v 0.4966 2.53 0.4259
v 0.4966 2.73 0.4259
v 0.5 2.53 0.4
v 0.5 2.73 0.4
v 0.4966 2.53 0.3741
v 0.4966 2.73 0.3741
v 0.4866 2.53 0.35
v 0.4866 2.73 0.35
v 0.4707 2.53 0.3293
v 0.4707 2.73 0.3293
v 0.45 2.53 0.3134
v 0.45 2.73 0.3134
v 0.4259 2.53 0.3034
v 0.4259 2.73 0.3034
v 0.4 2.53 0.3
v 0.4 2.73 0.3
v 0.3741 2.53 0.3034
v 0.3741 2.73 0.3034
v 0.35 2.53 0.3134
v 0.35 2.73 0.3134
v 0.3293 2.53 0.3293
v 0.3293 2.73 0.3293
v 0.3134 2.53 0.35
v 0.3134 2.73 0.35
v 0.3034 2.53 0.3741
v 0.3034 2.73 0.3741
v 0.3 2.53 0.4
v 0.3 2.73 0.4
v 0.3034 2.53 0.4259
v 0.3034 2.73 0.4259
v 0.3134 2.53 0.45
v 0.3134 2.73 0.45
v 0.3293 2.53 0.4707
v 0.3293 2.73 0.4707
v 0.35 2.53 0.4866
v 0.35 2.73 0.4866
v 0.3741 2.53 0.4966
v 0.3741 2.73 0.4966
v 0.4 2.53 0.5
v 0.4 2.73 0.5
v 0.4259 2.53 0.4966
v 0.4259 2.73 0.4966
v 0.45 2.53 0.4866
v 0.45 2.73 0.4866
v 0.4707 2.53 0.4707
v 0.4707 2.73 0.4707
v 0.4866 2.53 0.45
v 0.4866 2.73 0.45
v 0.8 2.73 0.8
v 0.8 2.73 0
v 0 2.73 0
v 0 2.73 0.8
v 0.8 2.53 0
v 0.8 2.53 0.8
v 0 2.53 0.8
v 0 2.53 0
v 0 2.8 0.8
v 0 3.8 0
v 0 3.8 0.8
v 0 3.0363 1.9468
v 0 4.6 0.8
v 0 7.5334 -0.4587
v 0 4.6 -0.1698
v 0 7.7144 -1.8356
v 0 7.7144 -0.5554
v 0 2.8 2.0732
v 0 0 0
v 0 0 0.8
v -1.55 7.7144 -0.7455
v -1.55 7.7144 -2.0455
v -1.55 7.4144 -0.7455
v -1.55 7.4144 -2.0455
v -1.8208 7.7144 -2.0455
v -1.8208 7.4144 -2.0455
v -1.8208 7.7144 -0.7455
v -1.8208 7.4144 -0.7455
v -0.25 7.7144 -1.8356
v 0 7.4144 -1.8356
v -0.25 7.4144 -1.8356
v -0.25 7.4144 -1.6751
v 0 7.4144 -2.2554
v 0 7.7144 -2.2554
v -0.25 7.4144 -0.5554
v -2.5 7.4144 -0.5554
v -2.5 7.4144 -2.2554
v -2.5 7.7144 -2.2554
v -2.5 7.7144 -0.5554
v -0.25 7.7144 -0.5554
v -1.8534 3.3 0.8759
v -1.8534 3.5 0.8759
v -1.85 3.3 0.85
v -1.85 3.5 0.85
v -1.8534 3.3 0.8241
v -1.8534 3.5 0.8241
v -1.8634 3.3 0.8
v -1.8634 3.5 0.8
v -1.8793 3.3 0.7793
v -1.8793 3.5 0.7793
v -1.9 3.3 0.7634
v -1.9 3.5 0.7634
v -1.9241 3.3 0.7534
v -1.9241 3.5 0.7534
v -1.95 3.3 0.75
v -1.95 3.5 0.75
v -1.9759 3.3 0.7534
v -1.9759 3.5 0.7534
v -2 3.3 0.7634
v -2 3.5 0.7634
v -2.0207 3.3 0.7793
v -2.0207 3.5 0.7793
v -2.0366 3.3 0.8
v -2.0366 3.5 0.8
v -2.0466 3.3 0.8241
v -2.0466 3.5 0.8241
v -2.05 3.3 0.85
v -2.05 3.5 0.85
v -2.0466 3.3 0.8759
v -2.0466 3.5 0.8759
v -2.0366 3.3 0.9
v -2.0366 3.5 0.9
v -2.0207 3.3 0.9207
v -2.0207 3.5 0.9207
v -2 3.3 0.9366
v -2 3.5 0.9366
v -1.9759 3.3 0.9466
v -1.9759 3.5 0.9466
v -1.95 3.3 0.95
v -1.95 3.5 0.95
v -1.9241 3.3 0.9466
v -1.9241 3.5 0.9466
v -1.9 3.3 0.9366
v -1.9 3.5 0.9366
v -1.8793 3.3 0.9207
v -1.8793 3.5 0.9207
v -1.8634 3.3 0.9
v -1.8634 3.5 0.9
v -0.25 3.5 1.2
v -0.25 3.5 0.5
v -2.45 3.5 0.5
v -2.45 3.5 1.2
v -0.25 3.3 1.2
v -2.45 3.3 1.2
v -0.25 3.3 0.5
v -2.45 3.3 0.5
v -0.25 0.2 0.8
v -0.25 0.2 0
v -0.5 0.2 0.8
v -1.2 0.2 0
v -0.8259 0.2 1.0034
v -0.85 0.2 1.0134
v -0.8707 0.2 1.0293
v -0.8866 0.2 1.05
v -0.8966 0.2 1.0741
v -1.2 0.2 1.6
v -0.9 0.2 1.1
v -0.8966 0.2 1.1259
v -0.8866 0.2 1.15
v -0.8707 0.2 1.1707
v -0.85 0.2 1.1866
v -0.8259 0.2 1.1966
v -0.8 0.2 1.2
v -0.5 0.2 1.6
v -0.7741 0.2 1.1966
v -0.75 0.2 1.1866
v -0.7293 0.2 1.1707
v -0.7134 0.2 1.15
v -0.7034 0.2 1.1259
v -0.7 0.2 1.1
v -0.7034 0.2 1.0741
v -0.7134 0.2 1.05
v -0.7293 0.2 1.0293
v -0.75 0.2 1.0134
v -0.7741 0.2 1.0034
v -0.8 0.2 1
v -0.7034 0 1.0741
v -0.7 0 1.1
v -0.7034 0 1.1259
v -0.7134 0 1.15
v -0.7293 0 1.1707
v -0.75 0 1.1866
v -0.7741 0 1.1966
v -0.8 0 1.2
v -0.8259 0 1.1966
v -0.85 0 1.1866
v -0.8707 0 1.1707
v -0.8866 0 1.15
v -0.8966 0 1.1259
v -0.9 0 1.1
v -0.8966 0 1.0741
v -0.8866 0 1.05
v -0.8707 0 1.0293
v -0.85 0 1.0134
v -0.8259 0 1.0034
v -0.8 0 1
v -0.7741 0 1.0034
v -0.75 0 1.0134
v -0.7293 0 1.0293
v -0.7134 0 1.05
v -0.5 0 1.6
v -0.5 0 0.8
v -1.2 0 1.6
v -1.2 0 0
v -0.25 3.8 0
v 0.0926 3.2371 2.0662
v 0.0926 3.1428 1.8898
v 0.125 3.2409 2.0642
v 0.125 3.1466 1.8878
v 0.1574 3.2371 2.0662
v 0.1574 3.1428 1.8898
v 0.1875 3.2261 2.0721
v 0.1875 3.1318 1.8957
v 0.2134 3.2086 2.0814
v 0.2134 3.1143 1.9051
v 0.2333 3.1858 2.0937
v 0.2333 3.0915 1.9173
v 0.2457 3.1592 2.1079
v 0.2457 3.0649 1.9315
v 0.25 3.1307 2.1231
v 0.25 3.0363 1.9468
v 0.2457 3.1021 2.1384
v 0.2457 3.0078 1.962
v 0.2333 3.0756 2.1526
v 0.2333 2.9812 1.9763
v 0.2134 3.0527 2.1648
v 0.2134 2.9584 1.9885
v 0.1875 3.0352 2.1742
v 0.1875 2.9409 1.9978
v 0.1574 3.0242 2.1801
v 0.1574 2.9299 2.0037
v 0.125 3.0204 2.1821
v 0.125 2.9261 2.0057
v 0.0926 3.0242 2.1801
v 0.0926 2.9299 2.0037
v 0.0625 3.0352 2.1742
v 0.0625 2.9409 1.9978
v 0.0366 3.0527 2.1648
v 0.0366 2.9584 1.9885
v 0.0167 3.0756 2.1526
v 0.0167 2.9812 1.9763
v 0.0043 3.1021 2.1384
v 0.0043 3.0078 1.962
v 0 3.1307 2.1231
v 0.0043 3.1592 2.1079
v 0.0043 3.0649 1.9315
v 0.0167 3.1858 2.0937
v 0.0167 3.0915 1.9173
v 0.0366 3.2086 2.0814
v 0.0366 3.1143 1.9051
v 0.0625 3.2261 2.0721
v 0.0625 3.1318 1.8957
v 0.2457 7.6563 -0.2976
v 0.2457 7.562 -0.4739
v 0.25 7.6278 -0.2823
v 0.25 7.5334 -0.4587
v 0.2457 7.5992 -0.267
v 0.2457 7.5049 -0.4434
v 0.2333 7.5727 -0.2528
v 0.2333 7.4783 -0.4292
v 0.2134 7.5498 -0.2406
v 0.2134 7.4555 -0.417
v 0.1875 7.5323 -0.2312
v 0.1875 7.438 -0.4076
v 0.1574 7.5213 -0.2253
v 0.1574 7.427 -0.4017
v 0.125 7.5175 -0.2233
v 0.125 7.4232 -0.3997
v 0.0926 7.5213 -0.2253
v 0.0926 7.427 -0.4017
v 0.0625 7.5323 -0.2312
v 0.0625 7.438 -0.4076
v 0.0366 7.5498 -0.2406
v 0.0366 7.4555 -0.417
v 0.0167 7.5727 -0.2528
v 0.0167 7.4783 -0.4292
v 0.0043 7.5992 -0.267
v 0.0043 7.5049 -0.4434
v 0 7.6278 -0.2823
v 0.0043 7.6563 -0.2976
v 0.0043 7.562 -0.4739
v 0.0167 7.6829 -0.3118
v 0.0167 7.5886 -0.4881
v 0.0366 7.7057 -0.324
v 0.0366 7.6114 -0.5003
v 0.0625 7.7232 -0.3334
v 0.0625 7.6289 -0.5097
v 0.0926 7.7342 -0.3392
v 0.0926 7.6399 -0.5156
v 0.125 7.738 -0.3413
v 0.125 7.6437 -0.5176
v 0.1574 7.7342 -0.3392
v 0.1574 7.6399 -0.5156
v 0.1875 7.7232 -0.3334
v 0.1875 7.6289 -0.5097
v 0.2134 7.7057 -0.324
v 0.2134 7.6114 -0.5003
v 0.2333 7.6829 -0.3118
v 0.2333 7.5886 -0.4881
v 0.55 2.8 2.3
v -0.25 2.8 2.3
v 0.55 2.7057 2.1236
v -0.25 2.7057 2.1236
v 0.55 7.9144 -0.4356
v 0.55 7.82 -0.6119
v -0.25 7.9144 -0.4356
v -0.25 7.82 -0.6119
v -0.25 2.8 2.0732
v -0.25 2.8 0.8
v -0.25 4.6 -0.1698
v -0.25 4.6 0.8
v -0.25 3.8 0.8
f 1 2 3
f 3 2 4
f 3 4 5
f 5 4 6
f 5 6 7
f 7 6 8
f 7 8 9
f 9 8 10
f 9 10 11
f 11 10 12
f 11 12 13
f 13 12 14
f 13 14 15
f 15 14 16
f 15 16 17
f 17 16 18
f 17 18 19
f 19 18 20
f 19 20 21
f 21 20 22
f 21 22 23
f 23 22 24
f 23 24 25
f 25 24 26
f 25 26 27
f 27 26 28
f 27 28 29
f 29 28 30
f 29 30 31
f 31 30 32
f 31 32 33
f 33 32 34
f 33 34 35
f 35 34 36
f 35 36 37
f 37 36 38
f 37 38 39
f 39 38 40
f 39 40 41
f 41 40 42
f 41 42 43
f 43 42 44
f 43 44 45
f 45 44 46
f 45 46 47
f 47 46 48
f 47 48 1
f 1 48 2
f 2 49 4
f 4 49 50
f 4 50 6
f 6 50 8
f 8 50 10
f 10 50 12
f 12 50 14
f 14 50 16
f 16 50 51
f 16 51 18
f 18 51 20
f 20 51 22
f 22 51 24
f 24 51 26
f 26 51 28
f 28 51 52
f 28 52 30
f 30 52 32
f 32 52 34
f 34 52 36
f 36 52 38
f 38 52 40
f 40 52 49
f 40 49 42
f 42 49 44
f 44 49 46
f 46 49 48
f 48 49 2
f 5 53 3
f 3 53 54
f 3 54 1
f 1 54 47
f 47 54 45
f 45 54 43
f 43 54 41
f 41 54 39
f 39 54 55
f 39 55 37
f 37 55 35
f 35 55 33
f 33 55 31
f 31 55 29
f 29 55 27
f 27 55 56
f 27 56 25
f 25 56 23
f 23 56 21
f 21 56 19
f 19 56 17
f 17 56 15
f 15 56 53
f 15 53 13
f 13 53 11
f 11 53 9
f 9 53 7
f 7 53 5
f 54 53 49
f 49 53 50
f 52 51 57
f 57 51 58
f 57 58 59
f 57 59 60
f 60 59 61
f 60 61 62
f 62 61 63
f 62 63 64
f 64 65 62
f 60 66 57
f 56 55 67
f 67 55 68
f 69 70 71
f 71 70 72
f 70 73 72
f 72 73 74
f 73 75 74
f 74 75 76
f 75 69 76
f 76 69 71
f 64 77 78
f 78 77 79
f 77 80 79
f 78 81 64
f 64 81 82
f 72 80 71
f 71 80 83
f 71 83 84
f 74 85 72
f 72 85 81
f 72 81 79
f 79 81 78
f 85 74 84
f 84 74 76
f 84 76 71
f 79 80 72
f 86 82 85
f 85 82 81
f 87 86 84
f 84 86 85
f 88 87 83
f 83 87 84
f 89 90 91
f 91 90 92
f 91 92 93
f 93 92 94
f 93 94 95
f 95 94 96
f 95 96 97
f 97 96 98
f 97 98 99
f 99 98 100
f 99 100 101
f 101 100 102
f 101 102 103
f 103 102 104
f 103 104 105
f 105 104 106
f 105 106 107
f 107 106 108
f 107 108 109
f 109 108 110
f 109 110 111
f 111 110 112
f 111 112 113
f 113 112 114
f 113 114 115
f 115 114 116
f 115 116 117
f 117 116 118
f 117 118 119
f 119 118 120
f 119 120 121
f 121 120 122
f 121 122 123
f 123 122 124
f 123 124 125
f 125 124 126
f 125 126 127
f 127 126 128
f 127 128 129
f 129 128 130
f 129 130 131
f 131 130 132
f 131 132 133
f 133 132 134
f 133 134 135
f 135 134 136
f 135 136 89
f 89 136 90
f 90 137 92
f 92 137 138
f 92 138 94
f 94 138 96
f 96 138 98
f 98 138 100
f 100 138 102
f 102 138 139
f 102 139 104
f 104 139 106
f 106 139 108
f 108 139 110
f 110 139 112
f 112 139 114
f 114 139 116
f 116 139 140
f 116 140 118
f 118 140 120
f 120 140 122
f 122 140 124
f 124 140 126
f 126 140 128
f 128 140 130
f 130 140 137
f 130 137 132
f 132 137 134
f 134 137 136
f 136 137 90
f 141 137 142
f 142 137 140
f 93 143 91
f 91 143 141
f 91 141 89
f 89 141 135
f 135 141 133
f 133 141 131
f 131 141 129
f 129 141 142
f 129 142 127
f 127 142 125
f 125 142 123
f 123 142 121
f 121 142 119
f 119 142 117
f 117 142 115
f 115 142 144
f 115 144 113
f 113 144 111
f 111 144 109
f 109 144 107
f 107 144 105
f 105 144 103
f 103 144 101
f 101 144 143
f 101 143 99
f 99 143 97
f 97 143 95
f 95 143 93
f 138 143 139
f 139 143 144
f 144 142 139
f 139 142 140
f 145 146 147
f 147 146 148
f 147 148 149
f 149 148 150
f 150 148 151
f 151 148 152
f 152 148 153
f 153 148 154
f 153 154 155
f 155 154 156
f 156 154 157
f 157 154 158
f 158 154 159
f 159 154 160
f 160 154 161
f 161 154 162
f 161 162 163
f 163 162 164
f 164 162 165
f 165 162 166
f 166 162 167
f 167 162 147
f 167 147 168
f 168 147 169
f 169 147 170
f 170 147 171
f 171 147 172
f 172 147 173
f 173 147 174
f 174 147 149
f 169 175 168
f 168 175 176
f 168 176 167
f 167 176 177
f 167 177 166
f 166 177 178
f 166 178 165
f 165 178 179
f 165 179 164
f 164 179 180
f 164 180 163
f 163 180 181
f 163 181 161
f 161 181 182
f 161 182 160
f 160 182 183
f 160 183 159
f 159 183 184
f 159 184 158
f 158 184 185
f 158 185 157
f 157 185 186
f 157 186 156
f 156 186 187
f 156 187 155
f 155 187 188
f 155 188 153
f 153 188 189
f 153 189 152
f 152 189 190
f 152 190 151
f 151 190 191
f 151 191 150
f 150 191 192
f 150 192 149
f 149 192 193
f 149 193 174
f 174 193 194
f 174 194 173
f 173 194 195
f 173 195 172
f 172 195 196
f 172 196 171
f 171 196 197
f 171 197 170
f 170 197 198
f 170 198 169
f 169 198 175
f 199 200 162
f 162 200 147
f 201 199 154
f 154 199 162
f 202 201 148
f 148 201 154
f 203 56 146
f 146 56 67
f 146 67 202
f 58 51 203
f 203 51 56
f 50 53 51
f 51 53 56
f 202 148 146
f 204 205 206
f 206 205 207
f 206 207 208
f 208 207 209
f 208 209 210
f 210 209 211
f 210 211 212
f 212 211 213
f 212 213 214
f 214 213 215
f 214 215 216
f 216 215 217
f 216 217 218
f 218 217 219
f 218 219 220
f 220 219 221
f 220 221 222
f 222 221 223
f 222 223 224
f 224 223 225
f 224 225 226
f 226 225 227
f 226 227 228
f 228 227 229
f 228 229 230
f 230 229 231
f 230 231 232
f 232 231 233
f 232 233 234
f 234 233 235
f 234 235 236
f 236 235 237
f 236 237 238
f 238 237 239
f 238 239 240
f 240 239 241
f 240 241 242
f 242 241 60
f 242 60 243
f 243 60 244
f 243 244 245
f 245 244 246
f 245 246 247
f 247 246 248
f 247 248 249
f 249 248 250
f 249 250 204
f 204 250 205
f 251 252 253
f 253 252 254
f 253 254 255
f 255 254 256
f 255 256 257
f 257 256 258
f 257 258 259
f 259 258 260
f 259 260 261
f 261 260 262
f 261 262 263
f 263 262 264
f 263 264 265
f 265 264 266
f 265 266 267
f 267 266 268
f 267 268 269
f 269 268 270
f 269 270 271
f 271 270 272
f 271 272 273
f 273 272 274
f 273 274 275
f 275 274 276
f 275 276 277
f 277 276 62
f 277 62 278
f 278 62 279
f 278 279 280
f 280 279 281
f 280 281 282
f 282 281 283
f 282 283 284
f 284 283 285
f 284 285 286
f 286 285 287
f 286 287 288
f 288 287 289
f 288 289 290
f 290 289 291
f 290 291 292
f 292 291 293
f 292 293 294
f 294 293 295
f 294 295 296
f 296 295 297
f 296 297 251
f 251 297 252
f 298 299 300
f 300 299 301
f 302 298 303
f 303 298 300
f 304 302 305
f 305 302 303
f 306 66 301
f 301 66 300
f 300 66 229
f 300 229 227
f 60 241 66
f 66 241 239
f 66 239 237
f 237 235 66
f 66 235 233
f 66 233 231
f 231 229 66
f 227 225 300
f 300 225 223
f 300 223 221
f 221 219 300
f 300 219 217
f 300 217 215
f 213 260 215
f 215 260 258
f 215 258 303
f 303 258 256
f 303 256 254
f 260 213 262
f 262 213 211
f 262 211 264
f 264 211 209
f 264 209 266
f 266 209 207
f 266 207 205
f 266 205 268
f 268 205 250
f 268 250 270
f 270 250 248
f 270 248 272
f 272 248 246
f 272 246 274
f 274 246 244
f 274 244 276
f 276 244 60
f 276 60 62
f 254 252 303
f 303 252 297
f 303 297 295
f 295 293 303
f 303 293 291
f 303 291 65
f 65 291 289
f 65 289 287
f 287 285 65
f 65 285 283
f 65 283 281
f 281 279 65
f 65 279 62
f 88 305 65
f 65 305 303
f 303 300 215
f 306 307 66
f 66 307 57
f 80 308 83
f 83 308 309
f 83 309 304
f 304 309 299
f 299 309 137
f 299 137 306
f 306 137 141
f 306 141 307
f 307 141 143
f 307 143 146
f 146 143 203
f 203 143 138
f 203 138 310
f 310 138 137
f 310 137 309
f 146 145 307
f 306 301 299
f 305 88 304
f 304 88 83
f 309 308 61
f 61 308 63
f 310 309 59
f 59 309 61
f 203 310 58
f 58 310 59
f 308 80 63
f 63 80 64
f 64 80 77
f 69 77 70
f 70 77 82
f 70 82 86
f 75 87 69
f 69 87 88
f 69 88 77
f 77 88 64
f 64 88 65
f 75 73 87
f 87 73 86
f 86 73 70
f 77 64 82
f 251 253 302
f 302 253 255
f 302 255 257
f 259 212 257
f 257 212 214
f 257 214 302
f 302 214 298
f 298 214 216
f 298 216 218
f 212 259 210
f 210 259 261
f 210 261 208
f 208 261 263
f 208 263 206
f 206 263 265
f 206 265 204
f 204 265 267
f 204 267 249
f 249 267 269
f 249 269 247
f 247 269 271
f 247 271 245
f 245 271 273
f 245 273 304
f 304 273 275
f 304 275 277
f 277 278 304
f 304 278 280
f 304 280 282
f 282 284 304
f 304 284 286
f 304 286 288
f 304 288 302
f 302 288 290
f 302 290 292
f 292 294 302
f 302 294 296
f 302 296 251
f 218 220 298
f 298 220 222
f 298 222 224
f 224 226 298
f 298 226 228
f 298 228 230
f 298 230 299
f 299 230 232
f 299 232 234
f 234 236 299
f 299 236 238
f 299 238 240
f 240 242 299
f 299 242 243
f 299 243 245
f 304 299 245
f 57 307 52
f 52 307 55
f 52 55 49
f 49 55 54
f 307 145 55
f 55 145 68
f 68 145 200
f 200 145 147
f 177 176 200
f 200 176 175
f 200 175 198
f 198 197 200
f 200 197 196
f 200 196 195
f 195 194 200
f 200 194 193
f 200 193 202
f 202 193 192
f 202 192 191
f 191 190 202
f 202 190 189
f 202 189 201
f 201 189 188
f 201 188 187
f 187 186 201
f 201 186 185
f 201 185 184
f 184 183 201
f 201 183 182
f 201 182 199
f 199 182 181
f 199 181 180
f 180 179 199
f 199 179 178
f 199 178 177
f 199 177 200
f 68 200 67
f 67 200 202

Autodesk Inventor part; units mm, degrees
ref_plane "YZ Plane" through (0, 0, 0) normal (1, 0, 0) x (0, 1, 0)
ref_plane "XZ Plane" through (0, 0, 0) normal (0, 1, 0) x (-1, 0, 0)
ref_plane "XY Plane" through (0, 0, 0) normal (0, 0, 1) x (1, 0, 0)
sketch "Boceto1" plane through (0, 0, 0) normal (1, 0, 0) x (0, 1, 0)
  line L0 (0, 0) -> (0, 0.8)
  line L1 (0, 0) -> (2.8, 0)
  line L2 (2.8, 0.8) -> (2.8, 2.3)
  line L3 (0, 0.8) -> (2.8, 0.8)
  line L4 (2.8, 0) -> (3.8, 0)
  line L5 (2.8, 0) -> (4.2826, 0)
  line L6 (7.1, 0) -> (2.8, 2.3)
  line L7 (7.9144, -0.4356) -> (7.1, 0)
  line L8 (7.9144, -0.4356) -> (7.7144, -0.4356)
  line L9 (7.7144, -0.4356) -> (7.7144, -1.8356)
  line L10 (7.7144, -1.8356) -> (6.9, -1.4)
  line L11 (6.9, -1.4) -> (4.2826, 0)
  line L12 (2.8, 2.3) -> (2.8, 0.8)
  line L13 (2.8, 0.8) -> (0, 0.8)
  line L14 (0, 0.8) -> (0, 0)
  line L15 (0, 0) -> (4.2826, 0)
  line L16 (4.2826, 0) -> (7.7144, -1.8356)
  line L17 (7.7144, -1.8356) -> (7.7144, -0.4356)
  line L18 (7.7144, -0.4356) -> (7.9144, -0.4356)
  line L19 (7.9144, -0.4356) -> (2.8, 2.3)
  line L20 (2.8, 2.3) -> (2.8, 0.8)
  dimension "d0" = 0.8
  dimension "d1" = 2.8
  dimension "d2" = 2.3
  dimension "d3" = 1
  dimension "d5" = 4.3
  dimension "d6" = 0.2
  dimension "d7" = 1.4
extrude "Extrusión1" add sketch "Boceto1" against normal blind 0.25
sketch "Boceto2" plane through (0, 0, 0) normal (1, 0, 0) x (0, 0, -1)
  line L0 (0, 0) -> (0, 4.2826) projected
  line L1 (0, 4.2826) -> (1.8356, 7.7144) projected
  line L2 (1.8356, 7.7144) -> (0.4356, 7.7144) projected
  line L3 (0.4356, 7.7144) -> (0.4356, 7.9144) projected
  line L4 (0.4356, 7.9144) -> (-2.3, 2.8) projected
  line L5 (-2.3, 2.8) -> (-0.8, 2.8) projected
  line L6 (-0.8, 2.8) -> (-0.8, 0) projected
  line L7 (-0.8, 0) -> (0, 0) projected
  line L8 (0, 0) -> (0, 2.8)
  line L9 (0, 4.2826) -> (0, 0) projected
  line L10 (0, 3.8) -> (-0.8, 3.8)
  line L11 (-0.8, 3.8) -> (-0.8, 4.6)
  line L12 (-0.8, 4.6) -> (0.1698, 4.6)
  line L13 (0, 3.8) -> (0, 4.2826)
  line L14 (0, 4.2826) -> (0.1698, 4.6)
  line L15 (0, 4.2826) -> (1.8356, 7.7144) projected
  dimension "d10" = 3.8
  dimension "d11" = 0.8
  dimension "d12" = 0.8
extrude "Extrusión2" cut sketch "Boceto2" against normal blind 0.3 contours L10 L11 L12 L1 L0
sketch "Boceto3" plane through (-0.25, 7.9144, -0.4356) normal (0, 0.4716523, 0.8817846) x (1, 0, 0)
  line L0 (0.25, 0) -> (0, 0) projected
  line L1 (0, -5.8) -> (0, 0) projected
  line L2 (0.25, -5.8) -> (0, -5.8) projected
  line L3 (0, -5.8) -> (0.8, -5.8)
  line L4 (0.8, -5.8) -> (0.8, 0)
  line L5 (0, 0) -> (0.8, 0)
  line L6 (0, 0) -> (0, -5.8)
  line L7 (0, -5.8) -> (0, -5.55)
  circle A0 centre (0.375, -5.425) radius 0.125
  line L8 (0.375, -5.3) -> (0.375, -0.45)
  line L9 (0.375, -5.55) -> (0.4814, -5.7157)
  circle A1 centre (0.375, -0.325) radius 0.125
  point P0 (0.25, -7.1842)
  dimension "d15" = 0.8
  dimension "d16" = 0.8
  dimension "d22" = 4.85
extrude "Extrusión3" add sketch "Boceto3" against normal blind 0.2
sketch "Boceto4" plane through (0, 0, 0) normal (0, -1, 0) x (1, 0, 0)
  line L0 (0, 0.8) -> (0, 0) projected
  line L1 (0, 0) -> (-1.2, 0)
  line L2 (-1.2, 0) -> (-1.2, 1.6)
  line L3 (-1.2, 1.6) -> (-0.5, 1.6)
  line L4 (-0.5, 1.6) -> (-0.5, 0.8)
  line L5 (0, 0.8) -> (-0.5, 0.8)
  line L6 (0, 0.8) -> (0, 0)
  line L7 (-1.2, 0) -> (-1.2, 1.1)
  circle A0 centre (-0.8, 1.1) radius 0.1
  line L8 (-0.6809, 1.1) -> (-0.6309, 1.1)
  dimension "d25" = 1.2
  dimension "d26" = 1.6
  dimension "d27" = 0.7
  dimension "d28" = 1.1
  dimension "d58" = 0.05
extrude "Extrusión4" add sketch "Boceto4" against normal blind 0.2
sketch "Boceto5" plane through (-0.25, 0, 0) normal (-1, 0, 0) x (0, 0, 1)
  line L0 (0, 3.8) -> (0, 0.2) projected
  line L1 (0, 0.2) -> (0, 3.5)
  line L2 (0, 3.5) -> (0.5, 3.5)
  line L3 (0.5, 3.5) -> (1.2, 3.5)
  line L4 (1.2, 3.5) -> (1.2, 3.3)
  line L5 (1.2, 3.3) -> (0.5, 3.3)
  line L6 (0.5, 3.3) -> (0.5, 3.5)
  point P0 (0, 0)
  dimension "d33" = 3.3
  dimension "d34" = 0.5
  dimension "d35" = 0.7
  dimension "d36" = 0.2
  dimension "d37" = 0.7
extrude "Extrusión5" add sketch "Boceto5" along normal blind 2.2
sketch "Boceto6" plane through (-0.25, 3.5, 1.2) normal (0, 1, 0) x (1, 0, 0)
  line L0 (0, 0.7) -> (-2.2, 0.7) projected
  line L1 (0, 0.7) -> (0, 0.45)
  line L2 (0, 0.4) -> (0, -0.8732) projected
  line L3 (0, 0.45) -> (-1.7, 0.45)
  circle A0 centre (-1.7, 0.35) radius 0.1
  point P0 (0.25, 1.2)
  dimension "d40" = 0.25
  dimension "d41" = 1.7
extrude "Extrusión6" cut sketch "Boceto6" against normal blind 2.2
sketch "Boceto7" plane through (-0.25, 7.7144, -1.8356) normal (0, 1, 0) x (1, 0, 0)
  line L0 (0, -1.2802) -> (0.25, -1.2802) projected
  line L1 (0.25, 0) -> (0.25, -1.2802) projected
  line L2 (0.25, 0) -> (0, 0) projected
  line L3 (0, -1.2802) -> (0, 0) projected
  line L4 (-2.25, 0) -> (-2.25, -1.2802)
  line L5 (0.25, -1.2802) -> (-2.25, -1.2802)
  line L6 (0.25, -1.2802) -> (0.25, 0)
  line L7 (0.25, 0) -> (0.25, 0.4198)
  line L8 (0.25, 0.4198) -> (-2.25, 0.4198)
  line L9 (-2.25, 0.4198) -> (-2.25, 0)
  line L10 (0.25, 0) -> (0, 0) projected
  point P0 (0.25, -1.8356)
  dimension "d45" = 2.5
  dimension "d66" = 1.7
extrude "Extrusión7" add sketch "Boceto7" against normal blind 0.3 contours L5 L4 L9 L8 L7 L2 L3
sketch "Boceto8" plane through (0, 7.7144, -0.5554) normal (0, 1, 0) x (1, 0, 0)
  line L0 (-0.25, 0) -> (0, 0) projected
  line L1 (0, 1.2802) -> (0, 0) projected
  line L2 (-2.5, 1.7) -> (-2.5, 0) projected
  line L3 (-2.5, 0) -> (-0.25, 0) projected
  line L4 (-1.8208, 0.1901) -> (-1.8208, 1.4901)
  line L5 (-1.8208, 1.4901) -> (-1.55, 1.4901)
  line L6 (-1.8208, 0.1901) -> (-1.55, 0.1901)
  line L7 (-1.55, 0.1901) -> (-1.55, 1.4901)
  line L8 (-1.55, 1.4901) -> (-1.8208, 1.4901)
  line L9 (-1.8208, 1.4901) -> (-1.8208, 0.1901)
  line L10 (0, 1.2802) -> (-0.25, 1.2802) projected
  line L11 (0, 1.7) -> (-2.5, 1.7) projected
  line L12 (0, 1.2802) -> (0, 1.7) projected
  point P0 (0, -0.5554)
  dimension "d67" = 1.3
extrude "Extrusión8" cut sketch "Boceto8" against normal blind 0.3 contours L4 L5 L7 L6
sketch "Boceto9" plane through (0, 0, 0) normal (1, 0, 0) x (0, 0, -1)
  line L0 (-0.8, 0.2) -> (-0.8, 2.8) projected
  line L1 (-0.8, 2.8) -> (-0.8, 2.73)
  line L2 (-0.8, 2.73) -> (0, 2.73)
  line L3 (0, 2.73) -> (0, 2.53)
  line L4 (0, 0) -> (0, 3.8) projected
  line L5 (0, 2.53) -> (-0.8, 2.53)
  line L6 (-0.8, 2.53) -> (-0.8, 2.73)
  dimension "d59" = 0.07
  dimension "d60" = 0.2
extrude "Extrusión9" add sketch "Boceto9" along normal blind 0.8
sketch "Boceto10" plane through (0, 2.73, 0.8) normal (0, 1, 0) x (1, 0, 0)
  line L0 (0.8, 0.8) -> (0.8, 0) projected
  line L1 (0, 0.0002) -> (0, 0.8) projected
  line L2 (0, 0) -> (0.8, 0) projected
  circle A0 centre (0.4, 0.4) radius 0.1
  dimension "d63" = 0.2
extrude "Extrusión10" cut sketch "Boceto10" against normal blind 0.8
properties part number "soportefinalfinal2"
